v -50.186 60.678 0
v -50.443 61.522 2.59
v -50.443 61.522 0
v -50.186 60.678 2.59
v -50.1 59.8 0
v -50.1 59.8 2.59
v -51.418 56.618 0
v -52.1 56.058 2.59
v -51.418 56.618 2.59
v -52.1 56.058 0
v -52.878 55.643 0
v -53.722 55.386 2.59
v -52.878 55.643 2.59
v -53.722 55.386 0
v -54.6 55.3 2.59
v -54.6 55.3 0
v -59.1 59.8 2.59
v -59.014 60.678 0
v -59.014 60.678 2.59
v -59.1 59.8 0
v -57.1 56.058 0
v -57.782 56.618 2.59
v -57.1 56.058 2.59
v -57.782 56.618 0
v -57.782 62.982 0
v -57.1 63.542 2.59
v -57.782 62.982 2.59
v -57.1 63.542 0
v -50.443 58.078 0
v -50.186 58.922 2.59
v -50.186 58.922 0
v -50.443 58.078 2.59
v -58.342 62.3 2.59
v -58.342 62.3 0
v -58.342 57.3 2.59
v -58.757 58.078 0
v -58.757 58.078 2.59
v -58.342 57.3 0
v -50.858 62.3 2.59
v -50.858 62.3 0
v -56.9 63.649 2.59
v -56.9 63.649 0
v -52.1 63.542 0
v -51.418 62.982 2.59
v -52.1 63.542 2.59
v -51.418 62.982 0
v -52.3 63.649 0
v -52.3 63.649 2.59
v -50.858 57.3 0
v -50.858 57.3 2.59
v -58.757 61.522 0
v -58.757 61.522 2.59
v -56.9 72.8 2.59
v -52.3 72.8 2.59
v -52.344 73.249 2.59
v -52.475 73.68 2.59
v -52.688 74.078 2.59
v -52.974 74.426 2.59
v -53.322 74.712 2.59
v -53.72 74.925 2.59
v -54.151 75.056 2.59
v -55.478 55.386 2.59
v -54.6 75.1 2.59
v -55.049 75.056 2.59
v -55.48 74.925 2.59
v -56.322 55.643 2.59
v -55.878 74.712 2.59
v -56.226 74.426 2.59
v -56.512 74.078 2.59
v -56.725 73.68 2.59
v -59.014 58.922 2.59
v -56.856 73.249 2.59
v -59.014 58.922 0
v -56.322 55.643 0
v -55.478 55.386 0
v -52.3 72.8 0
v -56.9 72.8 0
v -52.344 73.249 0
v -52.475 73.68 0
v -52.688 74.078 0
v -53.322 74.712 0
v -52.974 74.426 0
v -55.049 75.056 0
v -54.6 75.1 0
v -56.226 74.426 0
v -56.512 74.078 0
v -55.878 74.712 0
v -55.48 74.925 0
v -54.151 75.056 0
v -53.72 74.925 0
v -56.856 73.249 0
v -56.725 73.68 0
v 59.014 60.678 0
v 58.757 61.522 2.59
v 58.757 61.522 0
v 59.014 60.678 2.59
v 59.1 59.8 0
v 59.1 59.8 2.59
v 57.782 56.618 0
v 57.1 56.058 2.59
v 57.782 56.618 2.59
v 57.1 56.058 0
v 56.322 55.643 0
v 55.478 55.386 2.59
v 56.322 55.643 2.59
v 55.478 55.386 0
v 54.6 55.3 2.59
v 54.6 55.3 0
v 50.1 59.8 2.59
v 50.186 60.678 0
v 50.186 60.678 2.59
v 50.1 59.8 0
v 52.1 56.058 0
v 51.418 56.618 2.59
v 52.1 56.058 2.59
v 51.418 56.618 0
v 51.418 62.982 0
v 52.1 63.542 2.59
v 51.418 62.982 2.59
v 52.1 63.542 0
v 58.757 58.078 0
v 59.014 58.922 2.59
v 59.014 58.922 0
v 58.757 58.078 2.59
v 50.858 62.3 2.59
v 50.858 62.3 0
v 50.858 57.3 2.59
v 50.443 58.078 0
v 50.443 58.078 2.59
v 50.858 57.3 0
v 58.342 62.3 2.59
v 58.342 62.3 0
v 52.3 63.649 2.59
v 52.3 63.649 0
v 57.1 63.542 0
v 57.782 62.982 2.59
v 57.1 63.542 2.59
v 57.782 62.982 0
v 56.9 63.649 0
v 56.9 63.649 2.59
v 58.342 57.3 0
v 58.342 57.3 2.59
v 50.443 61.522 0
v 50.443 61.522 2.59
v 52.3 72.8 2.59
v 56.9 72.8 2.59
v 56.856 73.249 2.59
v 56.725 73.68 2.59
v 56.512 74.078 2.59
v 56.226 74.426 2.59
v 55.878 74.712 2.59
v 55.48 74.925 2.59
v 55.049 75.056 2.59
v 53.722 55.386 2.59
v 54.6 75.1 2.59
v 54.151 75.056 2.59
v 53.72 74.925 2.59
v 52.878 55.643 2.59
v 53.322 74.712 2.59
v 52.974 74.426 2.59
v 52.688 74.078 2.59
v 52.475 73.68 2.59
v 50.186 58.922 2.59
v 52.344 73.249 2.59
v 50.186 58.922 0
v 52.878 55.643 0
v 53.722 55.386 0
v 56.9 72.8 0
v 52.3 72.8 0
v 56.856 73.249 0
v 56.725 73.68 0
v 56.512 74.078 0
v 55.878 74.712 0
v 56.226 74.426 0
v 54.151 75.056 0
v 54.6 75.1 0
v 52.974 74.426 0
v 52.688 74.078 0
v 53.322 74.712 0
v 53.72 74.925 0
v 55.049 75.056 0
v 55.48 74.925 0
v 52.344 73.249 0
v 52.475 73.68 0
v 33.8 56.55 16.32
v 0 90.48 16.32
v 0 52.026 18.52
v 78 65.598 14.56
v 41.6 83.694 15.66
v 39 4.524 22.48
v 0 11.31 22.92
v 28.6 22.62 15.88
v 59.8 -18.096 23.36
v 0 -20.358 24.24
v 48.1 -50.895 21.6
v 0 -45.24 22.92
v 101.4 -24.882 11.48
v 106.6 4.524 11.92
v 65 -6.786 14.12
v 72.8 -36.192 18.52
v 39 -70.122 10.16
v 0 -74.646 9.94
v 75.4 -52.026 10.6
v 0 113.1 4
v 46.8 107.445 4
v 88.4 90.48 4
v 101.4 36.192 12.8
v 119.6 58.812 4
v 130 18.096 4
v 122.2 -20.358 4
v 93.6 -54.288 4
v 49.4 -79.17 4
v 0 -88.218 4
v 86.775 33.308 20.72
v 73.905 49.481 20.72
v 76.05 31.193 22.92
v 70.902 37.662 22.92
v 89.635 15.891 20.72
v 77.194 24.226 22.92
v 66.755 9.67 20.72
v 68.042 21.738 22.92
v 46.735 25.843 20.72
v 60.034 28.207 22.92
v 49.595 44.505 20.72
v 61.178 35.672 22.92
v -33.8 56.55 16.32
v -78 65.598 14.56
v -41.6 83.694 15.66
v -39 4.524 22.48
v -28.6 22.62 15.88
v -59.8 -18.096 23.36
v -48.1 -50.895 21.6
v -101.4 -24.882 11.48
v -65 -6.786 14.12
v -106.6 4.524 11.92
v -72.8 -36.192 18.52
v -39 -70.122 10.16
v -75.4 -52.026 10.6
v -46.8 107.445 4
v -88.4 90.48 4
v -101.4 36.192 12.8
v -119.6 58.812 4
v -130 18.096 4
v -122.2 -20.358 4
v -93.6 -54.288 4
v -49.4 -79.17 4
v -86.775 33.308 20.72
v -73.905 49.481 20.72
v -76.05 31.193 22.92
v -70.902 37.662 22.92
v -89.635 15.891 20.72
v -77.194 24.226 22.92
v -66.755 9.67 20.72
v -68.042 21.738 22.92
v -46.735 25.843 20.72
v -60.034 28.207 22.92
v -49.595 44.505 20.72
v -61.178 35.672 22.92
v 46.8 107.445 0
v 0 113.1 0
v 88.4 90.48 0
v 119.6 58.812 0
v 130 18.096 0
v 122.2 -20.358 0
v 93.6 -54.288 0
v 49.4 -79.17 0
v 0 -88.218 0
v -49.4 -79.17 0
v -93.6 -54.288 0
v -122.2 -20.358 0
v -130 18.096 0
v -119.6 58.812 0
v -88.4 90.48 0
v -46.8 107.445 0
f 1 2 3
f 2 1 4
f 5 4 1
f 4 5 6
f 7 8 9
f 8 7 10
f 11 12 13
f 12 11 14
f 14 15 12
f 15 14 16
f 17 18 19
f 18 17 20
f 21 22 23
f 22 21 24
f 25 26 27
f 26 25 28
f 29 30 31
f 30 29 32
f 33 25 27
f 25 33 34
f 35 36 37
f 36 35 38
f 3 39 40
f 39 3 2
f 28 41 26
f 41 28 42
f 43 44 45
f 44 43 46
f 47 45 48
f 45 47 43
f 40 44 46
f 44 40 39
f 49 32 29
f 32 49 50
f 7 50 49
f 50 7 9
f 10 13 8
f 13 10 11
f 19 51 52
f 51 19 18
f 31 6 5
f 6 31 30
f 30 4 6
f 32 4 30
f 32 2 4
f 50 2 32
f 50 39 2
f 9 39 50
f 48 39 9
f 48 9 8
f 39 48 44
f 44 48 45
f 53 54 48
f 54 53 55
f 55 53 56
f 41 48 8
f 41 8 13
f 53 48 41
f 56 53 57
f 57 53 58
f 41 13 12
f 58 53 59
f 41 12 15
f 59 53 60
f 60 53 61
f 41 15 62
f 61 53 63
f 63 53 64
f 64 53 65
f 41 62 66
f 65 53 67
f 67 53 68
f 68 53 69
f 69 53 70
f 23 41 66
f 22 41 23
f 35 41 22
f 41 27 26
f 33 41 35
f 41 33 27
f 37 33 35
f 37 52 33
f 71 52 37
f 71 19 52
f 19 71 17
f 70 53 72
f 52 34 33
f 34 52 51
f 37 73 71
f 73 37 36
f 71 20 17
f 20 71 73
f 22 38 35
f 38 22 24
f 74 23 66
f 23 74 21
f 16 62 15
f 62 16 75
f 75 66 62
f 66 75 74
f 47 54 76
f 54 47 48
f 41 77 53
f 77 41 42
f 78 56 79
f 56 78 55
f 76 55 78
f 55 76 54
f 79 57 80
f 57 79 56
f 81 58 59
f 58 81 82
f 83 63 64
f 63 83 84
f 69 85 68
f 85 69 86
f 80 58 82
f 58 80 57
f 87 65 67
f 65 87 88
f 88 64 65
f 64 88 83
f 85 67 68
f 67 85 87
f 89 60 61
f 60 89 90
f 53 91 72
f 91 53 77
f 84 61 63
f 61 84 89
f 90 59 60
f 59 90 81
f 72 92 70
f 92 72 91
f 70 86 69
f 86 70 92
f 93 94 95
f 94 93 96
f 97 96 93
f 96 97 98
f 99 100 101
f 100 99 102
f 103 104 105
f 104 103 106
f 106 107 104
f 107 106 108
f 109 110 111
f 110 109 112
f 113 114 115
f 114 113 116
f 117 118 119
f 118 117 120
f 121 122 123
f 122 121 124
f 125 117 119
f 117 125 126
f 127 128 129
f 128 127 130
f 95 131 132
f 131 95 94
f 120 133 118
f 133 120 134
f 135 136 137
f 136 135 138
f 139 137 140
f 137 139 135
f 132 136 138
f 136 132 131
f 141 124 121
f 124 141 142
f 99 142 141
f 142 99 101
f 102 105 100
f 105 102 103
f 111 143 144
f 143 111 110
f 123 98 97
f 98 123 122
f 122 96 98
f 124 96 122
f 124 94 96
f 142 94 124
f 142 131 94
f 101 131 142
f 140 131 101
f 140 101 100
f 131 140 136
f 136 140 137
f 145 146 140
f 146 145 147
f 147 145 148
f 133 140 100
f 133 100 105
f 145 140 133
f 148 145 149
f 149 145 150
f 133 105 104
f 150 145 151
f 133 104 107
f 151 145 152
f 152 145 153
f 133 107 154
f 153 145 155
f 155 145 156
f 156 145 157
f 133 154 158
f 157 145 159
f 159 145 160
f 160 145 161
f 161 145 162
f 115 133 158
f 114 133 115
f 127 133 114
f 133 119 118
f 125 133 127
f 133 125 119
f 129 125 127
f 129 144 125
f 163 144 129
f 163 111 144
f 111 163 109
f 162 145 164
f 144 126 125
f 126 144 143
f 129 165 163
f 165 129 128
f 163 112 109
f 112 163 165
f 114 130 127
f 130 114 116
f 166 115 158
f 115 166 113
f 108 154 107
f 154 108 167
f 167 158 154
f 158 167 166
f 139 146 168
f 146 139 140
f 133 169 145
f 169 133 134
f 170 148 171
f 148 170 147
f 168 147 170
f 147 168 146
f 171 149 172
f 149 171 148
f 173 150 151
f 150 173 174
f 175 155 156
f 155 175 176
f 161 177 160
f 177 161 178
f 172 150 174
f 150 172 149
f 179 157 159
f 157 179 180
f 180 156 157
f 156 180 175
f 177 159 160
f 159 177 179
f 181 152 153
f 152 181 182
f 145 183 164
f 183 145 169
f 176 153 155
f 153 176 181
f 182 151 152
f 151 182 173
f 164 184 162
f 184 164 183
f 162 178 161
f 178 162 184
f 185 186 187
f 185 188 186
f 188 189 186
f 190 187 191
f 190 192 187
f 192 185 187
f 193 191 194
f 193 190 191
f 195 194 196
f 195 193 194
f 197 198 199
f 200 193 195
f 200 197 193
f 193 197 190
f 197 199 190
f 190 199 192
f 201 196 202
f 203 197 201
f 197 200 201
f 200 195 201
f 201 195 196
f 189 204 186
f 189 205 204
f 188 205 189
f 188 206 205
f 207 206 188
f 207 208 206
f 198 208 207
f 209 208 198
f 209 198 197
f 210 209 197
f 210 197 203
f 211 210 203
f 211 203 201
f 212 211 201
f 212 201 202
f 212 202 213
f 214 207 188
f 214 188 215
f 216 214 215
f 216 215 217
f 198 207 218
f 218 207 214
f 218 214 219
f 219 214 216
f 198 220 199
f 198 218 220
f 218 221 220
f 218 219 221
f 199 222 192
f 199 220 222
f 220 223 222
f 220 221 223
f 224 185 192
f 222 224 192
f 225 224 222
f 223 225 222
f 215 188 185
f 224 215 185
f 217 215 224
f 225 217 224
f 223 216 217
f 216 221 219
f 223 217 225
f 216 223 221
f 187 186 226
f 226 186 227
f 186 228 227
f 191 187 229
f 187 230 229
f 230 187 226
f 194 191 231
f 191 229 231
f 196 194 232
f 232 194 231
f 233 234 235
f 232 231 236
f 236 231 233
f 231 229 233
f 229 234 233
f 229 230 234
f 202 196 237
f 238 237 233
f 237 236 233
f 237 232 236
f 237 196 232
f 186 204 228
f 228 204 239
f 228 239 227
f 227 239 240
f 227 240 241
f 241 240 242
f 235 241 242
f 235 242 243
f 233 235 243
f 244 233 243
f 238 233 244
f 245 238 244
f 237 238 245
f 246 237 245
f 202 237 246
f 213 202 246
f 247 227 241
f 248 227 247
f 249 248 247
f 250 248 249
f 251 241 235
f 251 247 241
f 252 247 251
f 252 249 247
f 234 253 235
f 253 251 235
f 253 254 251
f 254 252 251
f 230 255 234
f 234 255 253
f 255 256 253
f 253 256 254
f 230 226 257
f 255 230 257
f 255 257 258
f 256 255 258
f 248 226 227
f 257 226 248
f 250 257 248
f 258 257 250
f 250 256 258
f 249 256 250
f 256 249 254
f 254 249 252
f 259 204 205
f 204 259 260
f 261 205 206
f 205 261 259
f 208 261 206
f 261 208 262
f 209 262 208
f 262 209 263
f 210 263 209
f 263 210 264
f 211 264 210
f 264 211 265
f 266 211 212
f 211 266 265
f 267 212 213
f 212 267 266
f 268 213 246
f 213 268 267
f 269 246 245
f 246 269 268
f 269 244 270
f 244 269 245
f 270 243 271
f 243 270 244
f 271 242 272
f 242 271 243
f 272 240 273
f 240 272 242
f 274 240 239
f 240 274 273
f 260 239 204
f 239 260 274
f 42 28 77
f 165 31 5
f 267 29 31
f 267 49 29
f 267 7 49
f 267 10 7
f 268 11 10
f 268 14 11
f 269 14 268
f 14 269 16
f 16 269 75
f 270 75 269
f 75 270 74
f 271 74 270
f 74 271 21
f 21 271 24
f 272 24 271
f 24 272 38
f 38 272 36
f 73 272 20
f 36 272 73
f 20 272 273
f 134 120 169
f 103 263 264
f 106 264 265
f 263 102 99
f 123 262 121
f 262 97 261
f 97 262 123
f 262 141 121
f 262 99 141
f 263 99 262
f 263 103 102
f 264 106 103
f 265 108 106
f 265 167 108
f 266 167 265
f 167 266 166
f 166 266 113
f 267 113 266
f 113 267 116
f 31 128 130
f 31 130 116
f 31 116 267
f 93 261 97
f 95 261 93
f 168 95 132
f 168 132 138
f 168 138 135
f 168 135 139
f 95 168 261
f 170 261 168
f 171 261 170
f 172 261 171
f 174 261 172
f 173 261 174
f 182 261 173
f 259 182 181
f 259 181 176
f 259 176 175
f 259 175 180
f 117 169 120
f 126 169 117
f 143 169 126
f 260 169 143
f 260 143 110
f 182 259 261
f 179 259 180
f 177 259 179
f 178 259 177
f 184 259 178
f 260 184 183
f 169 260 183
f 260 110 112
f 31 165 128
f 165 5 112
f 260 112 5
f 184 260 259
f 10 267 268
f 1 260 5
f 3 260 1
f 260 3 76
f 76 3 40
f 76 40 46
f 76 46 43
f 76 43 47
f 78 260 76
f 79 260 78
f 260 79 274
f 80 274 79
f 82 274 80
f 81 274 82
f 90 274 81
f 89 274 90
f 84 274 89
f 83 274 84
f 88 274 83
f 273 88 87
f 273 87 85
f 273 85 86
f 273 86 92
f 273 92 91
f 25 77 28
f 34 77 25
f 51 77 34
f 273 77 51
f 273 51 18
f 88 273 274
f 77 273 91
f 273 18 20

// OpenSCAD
// file: bp_head_data.scad
// GENERATED by gen_head.py -- do not edit by hand.
// Low-poly ball python head, front relief. Height field:
// every facet faces up or sideways, so it prints support-free.
BP_SCALE = 130.000;
BP_DEPTH = 22.000;
BP_BACKER = 4.000;
BP_V = [
  [0.0000,90.4800,16.3200],
  [0.0000,52.0260,18.5200],
  [33.8000,56.5500,16.3200],
  [78.0000,65.5980,14.5600],
  [41.6000,83.6940,15.6600],
  [0.0000,11.3100,22.9200],
  [39.0000,4.5240,22.4800],
  [28.6000,22.6200,15.8800],
  [0.0000,-20.3580,24.2400],
  [59.8000,-18.0960,23.3600],
  [0.0000,-45.2400,22.9200],
  [48.1000,-50.8950,21.6000],
  [65.0000,-6.7860,14.1200],
  [101.4000,-24.8820,11.4800],
  [106.6000,4.5240,11.9200],
  [72.8000,-36.1920,18.5200],
  [0.0000,-74.6460,9.9400],
  [39.0000,-70.1220,10.1600],
  [75.4000,-52.0260,10.6000],
  [0.0000,113.1000,4.0000],
  [46.8000,107.4450,4.0000],
  [88.4000,90.4800,4.0000],
  [101.4000,36.1920,12.8000],
  [119.6000,58.8120,4.0000],
  [130.0000,18.0960,4.0000],
  [122.2000,-20.3580,4.0000],
  [93.6000,-54.2880,4.0000],
  [49.4000,-79.1700,4.0000],
  [0.0000,-88.2180,4.0000],
  [73.9050,49.4813,20.7200],
  [86.7750,33.3080,20.7200],
  [89.6350,15.8906,20.7200],
  [66.7550,9.6701,20.7200],
  [46.7350,25.8434,20.7200],
  [49.5950,44.5048,20.7200],
  [70.9020,37.6623,22.9200],
  [76.0500,31.1930,22.9200],
  [77.1940,24.2260,22.9200],
  [68.0420,21.7378,22.9200],
  [60.0340,28.2071,22.9200],
  [61.1780,35.6717,22.9200],
  [-33.8000,56.5500,16.3200],
  [-78.0000,65.5980,14.5600],
  [-41.6000,83.6940,15.6600],
  [-39.0000,4.5240,22.4800],
  [-28.6000,22.6200,15.8800],
  [-59.8000,-18.0960,23.3600],
  [-48.1000,-50.8950,21.6000],
  [-65.0000,-6.7860,14.1200],
  [-101.4000,-24.8820,11.4800],
  [-106.6000,4.5240,11.9200],
  [-72.8000,-36.1920,18.5200],
  [-39.0000,-70.1220,10.1600],
  [-75.4000,-52.0260,10.6000],
  [-46.8000,107.4450,4.0000],
  [-88.4000,90.4800,4.0000],
  [-101.4000,36.1920,12.8000],
  [-119.6000,58.8120,4.0000],
  [-130.0000,18.0960,4.0000],
  [-122.2000,-20.3580,4.0000],
  [-93.6000,-54.2880,4.0000],
  [-49.4000,-79.1700,4.0000],
  [-73.9050,49.4813,20.7200],
  [-86.7750,33.3080,20.7200],
  [-89.6350,15.8906,20.7200],
  [-66.7550,9.6701,20.7200],
  [-46.7350,25.8434,20.7200],
  [-49.5950,44.5048,20.7200],
  [-70.9020,37.6623,22.9200],
  [-76.0500,31.1930,22.9200],
  [-77.1940,24.2260,22.9200],
  [-68.0420,21.7378,22.9200],
  [-60.0340,28.2071,22.9200],
  [-61.1780,35.6717,22.9200],
  [0.0000,113.1000,0.0000],
  [46.8000,107.4450,0.0000],
  [88.4000,90.4800,0.0000],
  [119.6000,58.8120,0.0000],
  [130.0000,18.0960,0.0000],
  [122.2000,-20.3580,0.0000],
  [93.6000,-54.2880,0.0000],
  [49.4000,-79.1700,0.0000],
  [0.0000,-88.2180,0.0000],
  [-49.4000,-79.1700,0.0000],
  [-93.6000,-54.2880,0.0000],
  [-122.2000,-20.3580,0.0000],
  [-130.0000,18.0960,0.0000],
  [-119.6000,58.8120,0.0000],
  [-88.4000,90.4800,0.0000],
  [-46.8000,107.4450,0.0000],
  [0.0000,11.3100,0.0000]
];
BP_F = [
  [2,1,0],
  [3,2,0],
  [4,3,0],
  [6,5,1],
  [7,6,1],
  [2,7,1],
  [9,8,5],
  [6,9,5],
  [11,10,8],
  [9,11,8],
  [14,13,12],
  [15,11,9],
  [13,15,9],
  [13,9,6],
  [12,13,6],
  [7,12,6],
  [17,16,10],
  [13,18,17],
  [15,13,17],
  [11,15,17],
  [11,17,10],
  [4,0,19],
  [20,4,19],
  [3,4,20],
  [21,3,20],
  [22,3,21],
  [23,22,21],
  [14,22,23],
  [24,14,23],
  [13,14,24],
  [25,13,24],
  [18,13,25],
  [26,18,25],
  [17,18,26],
  [27,17,26],
  [16,17,27],
  [28,16,27],
  [3,22,30],
  [3,30,29],
  [29,30,36],
  [29,36,35],
  [22,14,31],
  [22,31,30],
  [30,31,37],
  [30,37,36],
  [14,12,32],
  [14,32,31],
  [31,32,38],
  [31,38,37],
  [12,7,33],
  [12,33,32],
  [32,33,39],
  [32,39,38],
  [7,2,34],
  [7,34,33],
  [33,34,40],
  [33,40,39],
  [2,3,29],
  [2,29,34],
  [34,29,35],
  [34,35,40],
  [35,36,37,38,39,40],
  [0,1,41],
  [0,41,42],
  [0,42,43],
  [1,5,44],
  [1,44,45],
  [1,45,41],
  [5,8,46],
  [5,46,44],
  [8,10,47],
  [8,47,46],
  [48,49,50],
  [46,47,51],
  [46,51,49],
  [44,46,49],
  [44,49,48],
  [44,48,45],
  [10,16,52],
  [52,53,49],
  [52,49,51],
  [52,51,47],
  [10,52,47],
  [19,0,43],
  [19,43,54],
  [54,43,42],
  [54,42,55],
  [55,42,56],
  [55,56,57],
  [57,56,50],
  [57,50,58],
  [58,50,49],
  [58,49,59],
  [59,49,53],
  [59,53,60],
  [60,53,52],
  [60,52,61],
  [61,52,16],
  [61,16,28],
  [63,56,42],
  [62,63,42],
  [69,63,62],
  [68,69,62],
  [64,50,56],
  [63,64,56],
  [70,64,63],
  [69,70,63],
  [65,48,50],
  [64,65,50],
  [71,65,64],
  [70,71,64],
  [66,45,48],
  [65,66,48],
  [72,66,65],
  [71,72,65],
  [67,41,45],
  [66,67,45],
  [73,67,66],
  [72,73,66],
  [62,42,41],
  [67,62,41],
  [68,62,67],
  [73,68,67],
  [73,72,71,70,69,68],
  [75,20,19],
  [74,75,19],
  [76,21,20],
  [75,76,20],
  [77,23,21],
  [76,77,21],
  [78,24,23],
  [77,78,23],
  [79,25,24],
  [78,79,24],
  [80,26,25],
  [79,80,25],
  [81,27,26],
  [80,81,26],
  [82,28,27],
  [81,82,27],
  [83,61,28],
  [82,83,28],
  [84,60,61],
  [83,84,61],
  [85,59,60],
  [84,85,60],
  [86,58,59],
  [85,86,59],
  [87,57,58],
  [86,87,58],
  [88,55,57],
  [87,88,57],
  [89,54,55],
  [88,89,55],
  [74,19,54],
  [89,74,54],
  [75,74,90],
  [76,75,90],
  [77,76,90],
  [78,77,90],
  [79,78,90],
  [80,79,90],
  [81,80,90],
  [82,81,90],
  [83,82,90],
  [84,83,90],
  [85,84,90],
  [86,85,90],
  [87,86,90],
  [88,87,90],
  [89,88,90],
  [74,89,90]
];
BP_OUTLINE = [
  [0.0000,113.1000],
  [46.8000,107.4450],
  [88.4000,90.4800],
  [119.6000,58.8120],
  [130.0000,18.0960],
  [122.2000,-20.3580],
  [93.6000,-54.2880],
  [49.4000,-79.1700],
  [0.0000,-88.2180],
  [-49.4000,-79.1700],
  [-93.6000,-54.2880],
  [-122.2000,-20.3580],
  [-130.0000,18.0960],
  [-119.6000,58.8120],
  [-88.4000,90.4800],
  [-46.8000,107.4450]
];
// main file
// ballpython_head.scad — low-poly faceted ball python head, wall relief.
//
// Geometry comes from projects/snake-wallart/gen_head.py as ONE closed
// polyhedron (relief + backer plate + silhouette wall). It is emitted as a
// native polyhedron() rather than an imported STL because OpenSCAD 2021.01
// cannot boolean imported meshes, and the keyholes below are a difference().
//
// The front surface is a single-valued height field, so no facet ever faces
// downward: this prints back-flat on the bed with ZERO supports.
//
// Re-generate after editing the vertex table:
//   python3 projects/snake-wallart/gen_head.py workspace/bp_head_data.scad

include <bp_head_data.scad>

keyhole  = true;   // cut two flush-mount keyhole slots in the back
kh_head  = 9.0;    // screw-head clearance dia
kh_slot  = 4.6;    // shank slot width
kh_drop  = 13.0;   // how far the slot runs up from the head
kh_roof  = 1.4;    // material left above the pocket
kh_x     = 0.42;   // keyhole x, as a fraction of half-width
kh_y     = 0.46;   // keyhole y, as a fraction of scale

$fn = 32;

// Cut from the BACK (z=0) upward. The pocket ceiling is a short bridge —
// trivial at this span, faces the bed, and never shows.
module keyhole_cut() {
  h = BP_BACKER - kh_roof;
  union() {
    cylinder(d = kh_head, h = h);
    translate([0, kh_drop / 2, h / 2]) cube([kh_slot, kh_drop, h], center = true);
    translate([0, kh_drop, 0]) cylinder(d = kh_slot, h = h);
  }
}

module ballpython_plaque() {
  difference() {
    polyhedron(points = BP_V, faces = BP_F, convexity = 12);
    if (keyhole)
      for (s = [-1, 1])
        translate([s * kh_x * BP_SCALE, kh_y * BP_SCALE, -0.01]) keyhole_cut();
  }
}

ballpython_plaque();

echo(overall_mm = [2 * BP_SCALE, 1.78 * BP_SCALE, BP_BACKER + BP_DEPTH],
     relief_mm = BP_DEPTH, backer_mm = BP_BACKER);
